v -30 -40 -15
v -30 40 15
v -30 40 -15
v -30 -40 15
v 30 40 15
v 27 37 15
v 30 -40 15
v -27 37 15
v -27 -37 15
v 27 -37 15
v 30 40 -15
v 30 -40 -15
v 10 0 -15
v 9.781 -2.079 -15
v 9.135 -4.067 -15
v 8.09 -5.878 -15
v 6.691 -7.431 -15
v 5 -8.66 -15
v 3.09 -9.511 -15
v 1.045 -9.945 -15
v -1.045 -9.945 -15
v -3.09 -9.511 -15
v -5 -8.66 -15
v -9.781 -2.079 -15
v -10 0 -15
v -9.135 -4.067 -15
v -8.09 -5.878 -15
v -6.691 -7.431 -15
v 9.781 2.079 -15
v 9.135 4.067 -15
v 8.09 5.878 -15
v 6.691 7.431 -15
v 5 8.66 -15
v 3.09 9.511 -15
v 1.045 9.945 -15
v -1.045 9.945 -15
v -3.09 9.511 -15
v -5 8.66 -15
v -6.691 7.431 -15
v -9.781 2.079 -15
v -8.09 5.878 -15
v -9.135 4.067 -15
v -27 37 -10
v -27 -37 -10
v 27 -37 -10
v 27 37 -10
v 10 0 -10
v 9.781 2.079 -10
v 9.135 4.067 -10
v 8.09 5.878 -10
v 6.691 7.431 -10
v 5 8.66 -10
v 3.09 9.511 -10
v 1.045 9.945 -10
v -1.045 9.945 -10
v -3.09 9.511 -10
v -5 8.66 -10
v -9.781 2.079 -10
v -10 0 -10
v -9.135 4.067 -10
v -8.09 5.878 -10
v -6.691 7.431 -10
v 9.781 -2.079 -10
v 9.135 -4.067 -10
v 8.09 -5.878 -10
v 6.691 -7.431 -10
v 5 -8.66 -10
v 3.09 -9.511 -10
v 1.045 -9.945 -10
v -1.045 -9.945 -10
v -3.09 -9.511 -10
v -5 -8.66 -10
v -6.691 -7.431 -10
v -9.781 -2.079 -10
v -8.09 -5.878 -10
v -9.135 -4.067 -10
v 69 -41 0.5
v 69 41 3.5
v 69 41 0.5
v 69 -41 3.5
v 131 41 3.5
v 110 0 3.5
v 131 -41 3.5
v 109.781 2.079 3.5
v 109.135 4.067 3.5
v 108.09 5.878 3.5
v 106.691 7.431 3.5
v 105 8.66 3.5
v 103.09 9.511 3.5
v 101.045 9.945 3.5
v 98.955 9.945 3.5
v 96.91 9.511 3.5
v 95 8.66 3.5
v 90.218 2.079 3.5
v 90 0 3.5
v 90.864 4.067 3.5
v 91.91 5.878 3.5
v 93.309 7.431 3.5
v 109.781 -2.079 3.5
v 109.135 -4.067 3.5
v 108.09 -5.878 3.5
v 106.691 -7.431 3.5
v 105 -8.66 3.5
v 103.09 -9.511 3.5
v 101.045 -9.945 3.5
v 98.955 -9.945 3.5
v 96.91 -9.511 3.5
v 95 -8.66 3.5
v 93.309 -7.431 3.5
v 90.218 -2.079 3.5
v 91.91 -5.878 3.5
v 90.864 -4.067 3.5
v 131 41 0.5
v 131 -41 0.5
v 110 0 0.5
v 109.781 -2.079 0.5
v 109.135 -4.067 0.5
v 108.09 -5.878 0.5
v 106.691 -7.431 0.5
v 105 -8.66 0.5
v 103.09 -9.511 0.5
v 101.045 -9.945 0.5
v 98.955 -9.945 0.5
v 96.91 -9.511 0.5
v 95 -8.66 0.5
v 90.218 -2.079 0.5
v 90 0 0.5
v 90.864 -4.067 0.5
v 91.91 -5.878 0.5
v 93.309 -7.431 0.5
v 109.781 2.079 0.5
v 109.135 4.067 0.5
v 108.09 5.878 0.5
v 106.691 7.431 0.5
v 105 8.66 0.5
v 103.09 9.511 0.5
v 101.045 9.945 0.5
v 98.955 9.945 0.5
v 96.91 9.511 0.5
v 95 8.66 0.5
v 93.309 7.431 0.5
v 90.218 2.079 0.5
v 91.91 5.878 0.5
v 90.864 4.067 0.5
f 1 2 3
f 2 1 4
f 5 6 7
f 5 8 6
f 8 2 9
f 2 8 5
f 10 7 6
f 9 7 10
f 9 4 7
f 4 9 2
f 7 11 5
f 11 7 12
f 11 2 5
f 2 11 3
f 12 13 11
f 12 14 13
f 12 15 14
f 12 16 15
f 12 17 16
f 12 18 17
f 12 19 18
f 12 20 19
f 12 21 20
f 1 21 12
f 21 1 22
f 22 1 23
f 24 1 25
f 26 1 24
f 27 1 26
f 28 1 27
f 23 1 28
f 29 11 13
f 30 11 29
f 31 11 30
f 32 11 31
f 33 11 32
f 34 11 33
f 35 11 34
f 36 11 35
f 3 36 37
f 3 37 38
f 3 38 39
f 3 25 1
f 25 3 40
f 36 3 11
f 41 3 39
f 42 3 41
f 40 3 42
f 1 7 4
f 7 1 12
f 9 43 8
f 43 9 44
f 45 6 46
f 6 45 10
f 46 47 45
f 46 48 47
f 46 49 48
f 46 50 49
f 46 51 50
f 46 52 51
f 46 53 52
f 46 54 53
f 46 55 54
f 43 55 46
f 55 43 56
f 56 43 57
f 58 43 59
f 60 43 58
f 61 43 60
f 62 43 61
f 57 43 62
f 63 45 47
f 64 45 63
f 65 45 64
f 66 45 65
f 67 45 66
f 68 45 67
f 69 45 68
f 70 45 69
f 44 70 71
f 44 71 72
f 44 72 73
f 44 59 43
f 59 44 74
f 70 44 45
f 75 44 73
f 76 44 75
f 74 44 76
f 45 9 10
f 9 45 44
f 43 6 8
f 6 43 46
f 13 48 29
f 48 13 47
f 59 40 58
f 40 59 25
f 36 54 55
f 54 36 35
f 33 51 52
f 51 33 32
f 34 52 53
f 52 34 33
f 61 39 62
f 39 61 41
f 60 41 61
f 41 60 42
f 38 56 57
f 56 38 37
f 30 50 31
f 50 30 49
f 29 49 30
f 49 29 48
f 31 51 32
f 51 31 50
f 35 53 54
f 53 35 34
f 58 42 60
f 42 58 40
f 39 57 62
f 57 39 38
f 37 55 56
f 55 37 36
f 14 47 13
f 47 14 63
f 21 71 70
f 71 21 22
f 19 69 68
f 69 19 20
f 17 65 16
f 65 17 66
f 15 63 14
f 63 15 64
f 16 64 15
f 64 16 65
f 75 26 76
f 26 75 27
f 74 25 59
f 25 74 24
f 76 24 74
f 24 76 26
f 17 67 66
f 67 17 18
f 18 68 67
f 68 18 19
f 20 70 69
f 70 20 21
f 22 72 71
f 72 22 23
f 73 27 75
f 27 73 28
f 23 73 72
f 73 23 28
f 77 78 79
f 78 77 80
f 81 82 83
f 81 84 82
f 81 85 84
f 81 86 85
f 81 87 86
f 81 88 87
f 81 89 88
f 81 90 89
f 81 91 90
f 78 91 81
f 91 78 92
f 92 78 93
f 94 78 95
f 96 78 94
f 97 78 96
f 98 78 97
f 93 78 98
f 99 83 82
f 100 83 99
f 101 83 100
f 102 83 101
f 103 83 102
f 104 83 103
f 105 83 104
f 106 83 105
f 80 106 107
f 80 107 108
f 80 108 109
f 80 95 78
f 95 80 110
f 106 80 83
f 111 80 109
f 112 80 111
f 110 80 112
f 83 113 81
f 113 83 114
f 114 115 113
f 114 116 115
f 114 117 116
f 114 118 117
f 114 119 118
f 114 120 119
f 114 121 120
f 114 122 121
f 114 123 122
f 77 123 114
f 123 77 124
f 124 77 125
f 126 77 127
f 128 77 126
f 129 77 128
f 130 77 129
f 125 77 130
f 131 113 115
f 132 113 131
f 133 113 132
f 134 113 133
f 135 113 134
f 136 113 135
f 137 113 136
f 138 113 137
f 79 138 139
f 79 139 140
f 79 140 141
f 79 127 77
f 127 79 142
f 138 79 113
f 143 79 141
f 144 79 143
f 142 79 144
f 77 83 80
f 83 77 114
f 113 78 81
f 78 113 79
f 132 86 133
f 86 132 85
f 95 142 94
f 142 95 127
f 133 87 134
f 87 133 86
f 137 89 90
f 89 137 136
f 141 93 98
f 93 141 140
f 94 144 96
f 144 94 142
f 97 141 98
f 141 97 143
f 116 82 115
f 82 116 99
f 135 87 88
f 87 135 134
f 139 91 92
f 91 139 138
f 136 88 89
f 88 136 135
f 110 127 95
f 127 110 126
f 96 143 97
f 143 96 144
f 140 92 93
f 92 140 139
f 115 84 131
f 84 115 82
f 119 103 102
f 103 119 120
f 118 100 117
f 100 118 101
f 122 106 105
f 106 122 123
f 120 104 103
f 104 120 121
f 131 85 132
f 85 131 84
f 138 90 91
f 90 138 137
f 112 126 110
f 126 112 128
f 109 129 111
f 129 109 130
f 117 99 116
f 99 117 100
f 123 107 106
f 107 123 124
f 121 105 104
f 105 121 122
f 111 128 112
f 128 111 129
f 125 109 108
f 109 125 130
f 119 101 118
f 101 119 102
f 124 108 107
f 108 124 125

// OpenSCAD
x = 60;//ширина 
y = 80;//длина
p = 30;//высота
    difference() { 
      cube([x,y,p], true);
        translate([0,0,5])
            cube([x-6,y-6,p],true);
        translate([0,0,-2*p])
            cylinder(r = 10, h = 100);
    }
    
    difference(){
       translate([100, 0, 2])
        cube([x+2,y+2,3],true);
        translate([100,0,-p])
            cylinder(r = 10, p*2);
    }
        
